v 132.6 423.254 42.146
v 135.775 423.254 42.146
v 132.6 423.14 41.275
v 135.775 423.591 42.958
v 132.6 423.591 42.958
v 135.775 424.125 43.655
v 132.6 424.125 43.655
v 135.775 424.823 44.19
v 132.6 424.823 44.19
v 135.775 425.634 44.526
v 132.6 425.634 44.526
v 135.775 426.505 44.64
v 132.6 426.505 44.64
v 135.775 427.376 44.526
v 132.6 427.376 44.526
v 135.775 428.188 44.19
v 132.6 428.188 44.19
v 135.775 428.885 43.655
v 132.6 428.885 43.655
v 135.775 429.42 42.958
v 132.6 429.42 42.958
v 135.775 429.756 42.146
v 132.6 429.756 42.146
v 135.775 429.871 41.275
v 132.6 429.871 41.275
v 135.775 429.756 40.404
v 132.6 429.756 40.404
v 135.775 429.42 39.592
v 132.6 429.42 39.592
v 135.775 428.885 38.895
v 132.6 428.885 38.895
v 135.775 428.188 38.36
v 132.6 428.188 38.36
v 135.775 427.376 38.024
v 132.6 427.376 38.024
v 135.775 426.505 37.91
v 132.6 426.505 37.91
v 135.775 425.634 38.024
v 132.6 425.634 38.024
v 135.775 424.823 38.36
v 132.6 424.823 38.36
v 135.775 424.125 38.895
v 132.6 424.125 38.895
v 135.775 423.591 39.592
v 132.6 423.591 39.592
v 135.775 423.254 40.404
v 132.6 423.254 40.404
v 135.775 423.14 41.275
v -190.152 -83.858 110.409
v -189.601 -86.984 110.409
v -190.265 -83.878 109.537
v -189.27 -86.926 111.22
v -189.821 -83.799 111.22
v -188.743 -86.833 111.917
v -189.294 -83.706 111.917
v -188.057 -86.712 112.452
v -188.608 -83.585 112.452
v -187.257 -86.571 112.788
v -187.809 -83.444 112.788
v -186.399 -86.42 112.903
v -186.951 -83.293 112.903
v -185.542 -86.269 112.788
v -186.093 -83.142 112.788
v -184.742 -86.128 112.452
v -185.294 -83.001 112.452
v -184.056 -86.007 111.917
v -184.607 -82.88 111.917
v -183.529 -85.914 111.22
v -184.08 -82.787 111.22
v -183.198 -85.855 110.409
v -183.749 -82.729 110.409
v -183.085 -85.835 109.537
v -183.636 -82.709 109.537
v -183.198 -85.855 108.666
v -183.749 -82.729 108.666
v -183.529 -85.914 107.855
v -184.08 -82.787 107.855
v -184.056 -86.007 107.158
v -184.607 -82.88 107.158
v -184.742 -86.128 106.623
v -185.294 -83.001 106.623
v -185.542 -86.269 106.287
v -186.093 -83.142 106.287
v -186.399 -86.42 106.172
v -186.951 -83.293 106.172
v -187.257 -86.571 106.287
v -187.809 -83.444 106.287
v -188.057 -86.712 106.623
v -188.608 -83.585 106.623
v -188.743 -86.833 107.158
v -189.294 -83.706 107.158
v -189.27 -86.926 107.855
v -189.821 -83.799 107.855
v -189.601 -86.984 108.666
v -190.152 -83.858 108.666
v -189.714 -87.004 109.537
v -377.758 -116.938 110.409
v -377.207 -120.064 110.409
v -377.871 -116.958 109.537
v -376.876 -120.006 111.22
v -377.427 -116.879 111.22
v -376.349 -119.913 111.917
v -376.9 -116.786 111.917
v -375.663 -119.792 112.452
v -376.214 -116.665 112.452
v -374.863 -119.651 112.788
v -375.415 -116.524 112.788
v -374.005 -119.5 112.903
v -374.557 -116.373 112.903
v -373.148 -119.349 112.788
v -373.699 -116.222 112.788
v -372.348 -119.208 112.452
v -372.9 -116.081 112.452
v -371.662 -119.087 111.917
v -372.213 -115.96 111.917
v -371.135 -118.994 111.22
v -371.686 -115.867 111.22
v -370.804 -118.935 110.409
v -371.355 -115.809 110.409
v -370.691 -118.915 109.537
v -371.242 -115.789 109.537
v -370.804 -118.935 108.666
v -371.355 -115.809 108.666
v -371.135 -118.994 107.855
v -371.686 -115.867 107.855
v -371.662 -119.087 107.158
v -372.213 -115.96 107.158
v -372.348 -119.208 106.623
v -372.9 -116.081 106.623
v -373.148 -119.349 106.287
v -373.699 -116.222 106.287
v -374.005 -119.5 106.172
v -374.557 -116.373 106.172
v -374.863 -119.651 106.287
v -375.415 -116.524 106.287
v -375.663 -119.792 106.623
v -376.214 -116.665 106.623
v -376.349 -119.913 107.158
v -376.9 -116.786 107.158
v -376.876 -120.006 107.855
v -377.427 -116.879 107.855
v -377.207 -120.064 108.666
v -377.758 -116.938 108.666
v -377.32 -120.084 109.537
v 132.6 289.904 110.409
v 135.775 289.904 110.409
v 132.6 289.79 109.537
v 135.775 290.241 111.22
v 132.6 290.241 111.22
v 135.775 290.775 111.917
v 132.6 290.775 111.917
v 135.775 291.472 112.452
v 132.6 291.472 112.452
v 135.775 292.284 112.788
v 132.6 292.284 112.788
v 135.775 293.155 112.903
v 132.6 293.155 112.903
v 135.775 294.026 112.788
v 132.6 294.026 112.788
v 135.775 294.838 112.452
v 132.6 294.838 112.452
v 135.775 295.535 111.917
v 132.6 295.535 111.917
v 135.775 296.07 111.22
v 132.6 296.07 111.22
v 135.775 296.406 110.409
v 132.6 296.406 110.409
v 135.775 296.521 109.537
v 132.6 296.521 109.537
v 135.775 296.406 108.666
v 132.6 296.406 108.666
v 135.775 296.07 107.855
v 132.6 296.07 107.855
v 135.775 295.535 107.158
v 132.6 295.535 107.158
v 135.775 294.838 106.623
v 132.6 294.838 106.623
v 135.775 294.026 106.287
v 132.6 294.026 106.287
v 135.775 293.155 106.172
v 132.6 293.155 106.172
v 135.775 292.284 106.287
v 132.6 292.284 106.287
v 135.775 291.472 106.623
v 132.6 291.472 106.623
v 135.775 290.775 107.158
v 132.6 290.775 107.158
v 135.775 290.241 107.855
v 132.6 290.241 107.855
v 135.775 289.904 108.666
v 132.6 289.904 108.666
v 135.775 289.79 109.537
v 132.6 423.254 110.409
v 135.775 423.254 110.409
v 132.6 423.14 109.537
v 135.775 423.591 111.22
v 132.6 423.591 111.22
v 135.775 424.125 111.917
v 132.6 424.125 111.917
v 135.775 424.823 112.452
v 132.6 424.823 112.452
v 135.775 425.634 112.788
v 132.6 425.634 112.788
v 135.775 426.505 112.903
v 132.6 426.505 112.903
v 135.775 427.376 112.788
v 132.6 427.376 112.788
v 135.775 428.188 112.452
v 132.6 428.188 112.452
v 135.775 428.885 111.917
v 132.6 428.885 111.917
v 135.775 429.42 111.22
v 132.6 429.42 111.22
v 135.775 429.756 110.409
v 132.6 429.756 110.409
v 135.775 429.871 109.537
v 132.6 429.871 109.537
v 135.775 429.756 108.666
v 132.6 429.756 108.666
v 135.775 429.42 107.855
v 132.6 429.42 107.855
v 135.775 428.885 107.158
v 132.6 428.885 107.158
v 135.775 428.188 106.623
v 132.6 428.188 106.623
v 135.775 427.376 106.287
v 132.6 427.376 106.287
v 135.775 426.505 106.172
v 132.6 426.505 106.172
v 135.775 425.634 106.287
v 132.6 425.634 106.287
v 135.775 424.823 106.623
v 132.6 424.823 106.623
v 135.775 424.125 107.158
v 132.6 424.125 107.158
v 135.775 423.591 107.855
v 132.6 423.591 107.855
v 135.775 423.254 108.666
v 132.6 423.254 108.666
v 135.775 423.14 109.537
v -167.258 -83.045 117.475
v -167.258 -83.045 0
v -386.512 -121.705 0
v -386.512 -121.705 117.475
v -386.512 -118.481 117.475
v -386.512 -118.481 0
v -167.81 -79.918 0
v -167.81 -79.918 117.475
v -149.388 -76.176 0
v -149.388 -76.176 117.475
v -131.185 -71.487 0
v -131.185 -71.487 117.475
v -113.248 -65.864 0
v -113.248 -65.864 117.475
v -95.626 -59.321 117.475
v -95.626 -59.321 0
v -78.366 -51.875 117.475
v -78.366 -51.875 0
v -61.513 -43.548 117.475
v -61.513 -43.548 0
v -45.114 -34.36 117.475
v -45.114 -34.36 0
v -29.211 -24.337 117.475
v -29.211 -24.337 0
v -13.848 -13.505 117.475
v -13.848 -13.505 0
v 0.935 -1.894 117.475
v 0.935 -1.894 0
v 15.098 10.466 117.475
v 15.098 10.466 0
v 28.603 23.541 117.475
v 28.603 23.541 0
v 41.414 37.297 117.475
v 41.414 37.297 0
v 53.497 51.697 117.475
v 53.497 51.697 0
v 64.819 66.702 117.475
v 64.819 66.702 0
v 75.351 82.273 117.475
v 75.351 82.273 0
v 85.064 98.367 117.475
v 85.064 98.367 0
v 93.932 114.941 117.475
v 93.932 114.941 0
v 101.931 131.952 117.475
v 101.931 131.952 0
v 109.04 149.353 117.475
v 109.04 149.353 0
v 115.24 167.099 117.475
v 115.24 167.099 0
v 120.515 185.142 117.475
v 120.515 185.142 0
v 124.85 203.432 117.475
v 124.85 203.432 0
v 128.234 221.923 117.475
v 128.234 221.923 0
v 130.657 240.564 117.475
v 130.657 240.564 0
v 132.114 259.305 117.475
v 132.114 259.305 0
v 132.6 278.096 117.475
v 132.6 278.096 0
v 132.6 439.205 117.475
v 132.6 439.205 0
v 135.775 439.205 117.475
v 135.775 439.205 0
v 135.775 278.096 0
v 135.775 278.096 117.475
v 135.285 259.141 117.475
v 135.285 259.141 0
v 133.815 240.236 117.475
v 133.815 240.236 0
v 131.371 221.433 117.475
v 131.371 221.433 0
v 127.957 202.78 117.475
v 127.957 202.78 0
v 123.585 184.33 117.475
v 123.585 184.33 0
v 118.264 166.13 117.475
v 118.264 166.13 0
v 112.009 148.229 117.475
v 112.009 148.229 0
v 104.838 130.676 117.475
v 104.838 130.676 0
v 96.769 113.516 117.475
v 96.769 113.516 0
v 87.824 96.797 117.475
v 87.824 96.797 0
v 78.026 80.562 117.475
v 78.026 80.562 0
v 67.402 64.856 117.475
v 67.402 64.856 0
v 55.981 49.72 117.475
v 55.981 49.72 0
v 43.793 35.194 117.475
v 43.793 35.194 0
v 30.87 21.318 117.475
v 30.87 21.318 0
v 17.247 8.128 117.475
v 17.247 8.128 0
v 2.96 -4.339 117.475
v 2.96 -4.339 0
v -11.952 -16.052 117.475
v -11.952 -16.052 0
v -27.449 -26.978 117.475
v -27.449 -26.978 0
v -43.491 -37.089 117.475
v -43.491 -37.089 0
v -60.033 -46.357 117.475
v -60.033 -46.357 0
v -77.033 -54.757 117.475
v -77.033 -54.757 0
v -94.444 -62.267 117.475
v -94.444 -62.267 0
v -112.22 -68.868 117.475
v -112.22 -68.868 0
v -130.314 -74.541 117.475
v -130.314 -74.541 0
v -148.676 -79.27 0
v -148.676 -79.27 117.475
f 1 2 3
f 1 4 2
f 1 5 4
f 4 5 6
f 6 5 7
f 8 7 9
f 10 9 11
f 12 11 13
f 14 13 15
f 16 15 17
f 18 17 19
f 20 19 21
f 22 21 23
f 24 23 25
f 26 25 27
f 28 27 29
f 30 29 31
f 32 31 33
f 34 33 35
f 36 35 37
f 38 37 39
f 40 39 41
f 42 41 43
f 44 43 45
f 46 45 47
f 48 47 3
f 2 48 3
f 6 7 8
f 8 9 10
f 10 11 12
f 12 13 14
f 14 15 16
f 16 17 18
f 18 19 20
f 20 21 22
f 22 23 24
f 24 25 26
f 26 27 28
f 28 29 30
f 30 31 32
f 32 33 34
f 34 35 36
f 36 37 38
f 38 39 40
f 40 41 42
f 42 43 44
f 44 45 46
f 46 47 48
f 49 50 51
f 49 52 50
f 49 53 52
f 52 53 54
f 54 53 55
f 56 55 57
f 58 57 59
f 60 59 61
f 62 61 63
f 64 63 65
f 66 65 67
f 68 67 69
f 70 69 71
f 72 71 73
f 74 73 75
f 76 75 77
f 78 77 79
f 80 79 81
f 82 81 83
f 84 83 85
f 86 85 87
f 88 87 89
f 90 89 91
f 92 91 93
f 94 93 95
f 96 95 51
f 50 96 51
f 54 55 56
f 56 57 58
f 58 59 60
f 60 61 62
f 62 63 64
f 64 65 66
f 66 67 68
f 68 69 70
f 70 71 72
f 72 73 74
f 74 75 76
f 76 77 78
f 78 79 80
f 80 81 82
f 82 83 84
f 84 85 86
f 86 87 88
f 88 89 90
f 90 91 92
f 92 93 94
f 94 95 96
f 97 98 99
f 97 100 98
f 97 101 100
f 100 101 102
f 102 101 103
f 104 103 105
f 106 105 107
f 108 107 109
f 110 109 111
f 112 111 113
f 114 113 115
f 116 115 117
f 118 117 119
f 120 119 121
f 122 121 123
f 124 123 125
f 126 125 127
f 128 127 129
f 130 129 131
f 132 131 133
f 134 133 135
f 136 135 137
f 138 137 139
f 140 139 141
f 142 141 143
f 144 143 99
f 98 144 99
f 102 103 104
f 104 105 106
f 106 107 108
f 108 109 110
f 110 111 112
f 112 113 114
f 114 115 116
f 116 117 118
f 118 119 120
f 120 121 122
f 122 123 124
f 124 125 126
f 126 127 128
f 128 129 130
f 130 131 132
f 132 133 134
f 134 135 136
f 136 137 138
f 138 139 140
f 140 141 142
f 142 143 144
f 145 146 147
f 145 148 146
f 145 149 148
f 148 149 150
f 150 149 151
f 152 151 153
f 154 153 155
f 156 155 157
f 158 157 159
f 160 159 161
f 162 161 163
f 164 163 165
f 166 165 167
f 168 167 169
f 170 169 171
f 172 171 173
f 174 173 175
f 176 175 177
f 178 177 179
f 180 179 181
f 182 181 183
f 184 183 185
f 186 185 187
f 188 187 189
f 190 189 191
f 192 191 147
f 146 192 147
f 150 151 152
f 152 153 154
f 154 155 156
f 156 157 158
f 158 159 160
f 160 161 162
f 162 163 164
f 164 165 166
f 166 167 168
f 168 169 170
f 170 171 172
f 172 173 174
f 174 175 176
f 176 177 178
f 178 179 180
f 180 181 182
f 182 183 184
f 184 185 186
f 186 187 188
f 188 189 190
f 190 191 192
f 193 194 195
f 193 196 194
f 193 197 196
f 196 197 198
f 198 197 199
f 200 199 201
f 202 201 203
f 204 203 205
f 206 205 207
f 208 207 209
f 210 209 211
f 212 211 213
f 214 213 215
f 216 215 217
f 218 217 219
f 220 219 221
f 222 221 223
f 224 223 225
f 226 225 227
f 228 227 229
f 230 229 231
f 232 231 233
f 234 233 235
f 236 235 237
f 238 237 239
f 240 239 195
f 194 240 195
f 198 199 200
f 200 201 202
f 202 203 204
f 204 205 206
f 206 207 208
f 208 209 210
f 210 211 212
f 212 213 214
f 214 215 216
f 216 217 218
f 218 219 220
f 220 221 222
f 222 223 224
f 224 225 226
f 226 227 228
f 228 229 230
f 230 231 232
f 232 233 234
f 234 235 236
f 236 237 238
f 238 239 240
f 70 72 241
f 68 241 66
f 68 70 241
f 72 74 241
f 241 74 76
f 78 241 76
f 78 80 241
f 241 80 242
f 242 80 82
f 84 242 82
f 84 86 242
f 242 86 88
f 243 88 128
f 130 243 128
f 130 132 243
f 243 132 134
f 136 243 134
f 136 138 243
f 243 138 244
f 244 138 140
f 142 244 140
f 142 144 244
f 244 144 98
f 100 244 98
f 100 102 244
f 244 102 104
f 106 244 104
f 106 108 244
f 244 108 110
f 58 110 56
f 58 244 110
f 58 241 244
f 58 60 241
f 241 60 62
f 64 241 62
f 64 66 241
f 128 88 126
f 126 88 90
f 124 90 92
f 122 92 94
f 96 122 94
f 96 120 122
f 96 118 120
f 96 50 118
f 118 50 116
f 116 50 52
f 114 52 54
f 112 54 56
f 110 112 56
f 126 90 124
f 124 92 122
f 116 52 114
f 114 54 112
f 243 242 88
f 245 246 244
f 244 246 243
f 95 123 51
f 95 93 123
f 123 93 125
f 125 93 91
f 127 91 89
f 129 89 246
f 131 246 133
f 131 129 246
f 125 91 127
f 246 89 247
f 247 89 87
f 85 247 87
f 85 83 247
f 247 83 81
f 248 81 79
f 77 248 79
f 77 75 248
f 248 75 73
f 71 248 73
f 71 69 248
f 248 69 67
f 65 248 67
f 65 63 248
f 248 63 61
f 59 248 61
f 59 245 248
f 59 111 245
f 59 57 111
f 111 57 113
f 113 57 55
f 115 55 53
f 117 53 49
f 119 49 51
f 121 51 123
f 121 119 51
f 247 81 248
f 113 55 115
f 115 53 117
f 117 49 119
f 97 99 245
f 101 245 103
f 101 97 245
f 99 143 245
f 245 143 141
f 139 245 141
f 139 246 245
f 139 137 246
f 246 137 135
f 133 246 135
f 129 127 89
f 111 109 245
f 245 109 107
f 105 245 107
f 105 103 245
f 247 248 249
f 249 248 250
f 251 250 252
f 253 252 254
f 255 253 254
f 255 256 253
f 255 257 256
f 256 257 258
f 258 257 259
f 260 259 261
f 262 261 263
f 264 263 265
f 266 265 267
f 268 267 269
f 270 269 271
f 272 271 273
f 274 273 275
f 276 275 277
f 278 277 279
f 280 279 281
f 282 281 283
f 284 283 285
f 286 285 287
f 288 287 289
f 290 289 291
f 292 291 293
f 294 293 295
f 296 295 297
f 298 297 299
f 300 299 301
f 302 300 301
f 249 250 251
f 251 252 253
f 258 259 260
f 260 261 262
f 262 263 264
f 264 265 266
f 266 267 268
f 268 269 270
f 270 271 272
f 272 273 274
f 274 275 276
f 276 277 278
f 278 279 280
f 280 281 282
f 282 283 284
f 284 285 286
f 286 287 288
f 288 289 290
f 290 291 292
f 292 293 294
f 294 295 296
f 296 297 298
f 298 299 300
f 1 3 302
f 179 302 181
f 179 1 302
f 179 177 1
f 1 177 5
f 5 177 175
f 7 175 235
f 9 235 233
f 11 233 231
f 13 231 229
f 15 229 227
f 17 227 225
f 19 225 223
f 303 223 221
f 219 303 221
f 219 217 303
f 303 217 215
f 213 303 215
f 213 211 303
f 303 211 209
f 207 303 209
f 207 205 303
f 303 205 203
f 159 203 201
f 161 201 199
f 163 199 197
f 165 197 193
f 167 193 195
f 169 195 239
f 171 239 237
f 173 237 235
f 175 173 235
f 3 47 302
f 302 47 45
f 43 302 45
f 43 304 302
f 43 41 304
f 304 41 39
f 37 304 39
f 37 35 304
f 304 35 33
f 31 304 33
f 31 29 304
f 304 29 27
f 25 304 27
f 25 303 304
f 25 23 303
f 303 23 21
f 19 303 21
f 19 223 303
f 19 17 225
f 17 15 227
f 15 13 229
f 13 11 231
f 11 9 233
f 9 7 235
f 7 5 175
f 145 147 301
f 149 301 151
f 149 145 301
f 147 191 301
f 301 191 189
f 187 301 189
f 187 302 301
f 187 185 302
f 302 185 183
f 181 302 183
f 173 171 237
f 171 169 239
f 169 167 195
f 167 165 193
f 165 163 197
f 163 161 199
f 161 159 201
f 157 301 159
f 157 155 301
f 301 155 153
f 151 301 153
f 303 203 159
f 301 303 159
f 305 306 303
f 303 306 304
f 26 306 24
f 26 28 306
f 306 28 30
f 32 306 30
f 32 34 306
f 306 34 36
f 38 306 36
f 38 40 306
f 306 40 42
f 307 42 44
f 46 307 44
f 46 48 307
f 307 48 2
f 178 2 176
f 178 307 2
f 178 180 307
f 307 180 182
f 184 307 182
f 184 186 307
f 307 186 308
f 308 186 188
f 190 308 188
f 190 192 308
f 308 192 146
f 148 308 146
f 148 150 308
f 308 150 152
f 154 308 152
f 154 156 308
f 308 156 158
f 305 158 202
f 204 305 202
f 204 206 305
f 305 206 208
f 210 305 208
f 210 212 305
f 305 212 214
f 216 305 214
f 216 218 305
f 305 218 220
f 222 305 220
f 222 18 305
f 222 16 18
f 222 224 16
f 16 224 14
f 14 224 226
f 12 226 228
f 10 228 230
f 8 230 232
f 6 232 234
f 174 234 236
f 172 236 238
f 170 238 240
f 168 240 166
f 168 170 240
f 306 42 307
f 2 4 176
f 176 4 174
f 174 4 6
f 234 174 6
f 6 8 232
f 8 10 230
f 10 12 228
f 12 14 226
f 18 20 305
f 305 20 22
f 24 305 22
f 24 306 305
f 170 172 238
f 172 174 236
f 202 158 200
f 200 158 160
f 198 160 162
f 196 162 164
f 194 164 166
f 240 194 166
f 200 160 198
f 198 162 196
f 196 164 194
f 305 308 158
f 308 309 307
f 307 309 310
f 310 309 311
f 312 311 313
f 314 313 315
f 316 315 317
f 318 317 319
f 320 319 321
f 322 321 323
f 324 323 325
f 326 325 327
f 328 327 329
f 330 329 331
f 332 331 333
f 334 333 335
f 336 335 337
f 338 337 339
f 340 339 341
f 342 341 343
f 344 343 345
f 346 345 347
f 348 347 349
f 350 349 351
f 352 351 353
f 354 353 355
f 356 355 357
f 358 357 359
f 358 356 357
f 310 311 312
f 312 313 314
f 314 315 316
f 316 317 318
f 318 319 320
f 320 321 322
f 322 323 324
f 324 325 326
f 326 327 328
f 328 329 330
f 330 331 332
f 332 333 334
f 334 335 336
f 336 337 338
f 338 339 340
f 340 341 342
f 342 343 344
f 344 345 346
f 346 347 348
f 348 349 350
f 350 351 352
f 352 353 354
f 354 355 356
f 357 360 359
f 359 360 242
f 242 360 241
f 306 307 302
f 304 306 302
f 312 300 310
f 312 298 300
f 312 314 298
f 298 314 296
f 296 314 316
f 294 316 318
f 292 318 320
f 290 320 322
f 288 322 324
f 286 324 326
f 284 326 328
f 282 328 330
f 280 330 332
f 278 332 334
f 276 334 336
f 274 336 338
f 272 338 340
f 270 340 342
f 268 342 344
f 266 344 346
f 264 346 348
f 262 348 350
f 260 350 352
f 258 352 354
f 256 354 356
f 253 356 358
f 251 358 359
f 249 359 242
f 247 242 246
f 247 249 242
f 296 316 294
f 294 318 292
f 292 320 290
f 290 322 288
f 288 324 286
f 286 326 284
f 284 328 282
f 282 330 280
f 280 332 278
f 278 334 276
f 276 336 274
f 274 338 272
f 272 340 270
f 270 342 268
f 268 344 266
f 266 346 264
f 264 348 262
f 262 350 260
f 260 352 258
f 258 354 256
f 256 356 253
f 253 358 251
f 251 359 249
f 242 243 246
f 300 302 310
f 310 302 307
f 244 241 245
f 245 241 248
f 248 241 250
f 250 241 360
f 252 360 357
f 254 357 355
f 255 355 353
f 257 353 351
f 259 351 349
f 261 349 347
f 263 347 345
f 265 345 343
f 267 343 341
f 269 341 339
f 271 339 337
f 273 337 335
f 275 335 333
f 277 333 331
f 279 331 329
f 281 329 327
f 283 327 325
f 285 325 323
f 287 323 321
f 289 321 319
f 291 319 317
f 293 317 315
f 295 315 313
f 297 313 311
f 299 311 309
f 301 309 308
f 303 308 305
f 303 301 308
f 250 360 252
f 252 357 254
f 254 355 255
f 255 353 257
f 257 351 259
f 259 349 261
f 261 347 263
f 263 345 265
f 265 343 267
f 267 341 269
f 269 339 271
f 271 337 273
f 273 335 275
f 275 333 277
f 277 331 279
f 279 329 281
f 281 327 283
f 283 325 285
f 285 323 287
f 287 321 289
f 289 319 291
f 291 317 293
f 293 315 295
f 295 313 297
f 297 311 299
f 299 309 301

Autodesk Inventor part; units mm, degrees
ref_plane "YZ Plane" through (0, 0, 0) normal (1, 0, 0) x (0, 1, 0)
ref_plane "XZ Plane" through (0, 0, 0) normal (0, 1, 0) x (-1, 0, 0)
ref_plane "XY Plane" through (0, 0, 0) normal (0, 0, 1) x (1, 0, 0)
sketch "Sketch1" plane through (0, 0, 0) normal (0, 0, 1) x (1, 0, 0)
  arc A0 (-167.2585, -83.0448) -> (135.7751, 278.0965) centre (-230.9374, 278.0965) ccw projected
  line L0 (135.7751, 278.0965) -> (135.7751, 439.2052) projected
  line L1 (132.6001, 439.2052) -> (135.7751, 439.2052) projected
  line L2 (132.6001, 439.2052) -> (132.6001, 278.0965) projected
  arc A1 (-167.8098, -79.9181) -> (132.6001, 278.0965) centre (-230.9374, 278.0965) ccw projected
  line L3 (-167.8098, -79.9181) -> (-386.5124, -118.4812) projected
  line L4 (-386.5124, -121.7052) -> (-386.5124, -118.4812) projected
  line L5 (-386.5124, -121.7052) -> (-167.2585, -83.0448) projected
  point P0 (0, 0)
extrude "Extrusion1" add sketch "Sketch1" along normal blind 117.475
hole "Hole1" at (135.7751, 426.5052, 109.5375) direction (-1, 0, 0) diameter 6.731 depth 25.4 tip angle 118
pattern_linear "Rectangular Pattern1" count 2 spacing 133.35 along (0, -1, 0) of "Hole1"
hole "Hole2" at (-374.0054, -119.4999, 109.5375) direction (-0.1736, 0.9848, 0) diameter 6.731 depth 25.4 tip angle 118
pattern_linear "Rectangular Pattern2" count 2 spacing 190.5 along (0.9848, 0.1736, 0) of "Hole2"
pattern_linear "Rectangular Pattern3" count 2 spacing 68.2625 along (0, 0, -1) of "Hole1"
properties part number "GE-12071-02"
